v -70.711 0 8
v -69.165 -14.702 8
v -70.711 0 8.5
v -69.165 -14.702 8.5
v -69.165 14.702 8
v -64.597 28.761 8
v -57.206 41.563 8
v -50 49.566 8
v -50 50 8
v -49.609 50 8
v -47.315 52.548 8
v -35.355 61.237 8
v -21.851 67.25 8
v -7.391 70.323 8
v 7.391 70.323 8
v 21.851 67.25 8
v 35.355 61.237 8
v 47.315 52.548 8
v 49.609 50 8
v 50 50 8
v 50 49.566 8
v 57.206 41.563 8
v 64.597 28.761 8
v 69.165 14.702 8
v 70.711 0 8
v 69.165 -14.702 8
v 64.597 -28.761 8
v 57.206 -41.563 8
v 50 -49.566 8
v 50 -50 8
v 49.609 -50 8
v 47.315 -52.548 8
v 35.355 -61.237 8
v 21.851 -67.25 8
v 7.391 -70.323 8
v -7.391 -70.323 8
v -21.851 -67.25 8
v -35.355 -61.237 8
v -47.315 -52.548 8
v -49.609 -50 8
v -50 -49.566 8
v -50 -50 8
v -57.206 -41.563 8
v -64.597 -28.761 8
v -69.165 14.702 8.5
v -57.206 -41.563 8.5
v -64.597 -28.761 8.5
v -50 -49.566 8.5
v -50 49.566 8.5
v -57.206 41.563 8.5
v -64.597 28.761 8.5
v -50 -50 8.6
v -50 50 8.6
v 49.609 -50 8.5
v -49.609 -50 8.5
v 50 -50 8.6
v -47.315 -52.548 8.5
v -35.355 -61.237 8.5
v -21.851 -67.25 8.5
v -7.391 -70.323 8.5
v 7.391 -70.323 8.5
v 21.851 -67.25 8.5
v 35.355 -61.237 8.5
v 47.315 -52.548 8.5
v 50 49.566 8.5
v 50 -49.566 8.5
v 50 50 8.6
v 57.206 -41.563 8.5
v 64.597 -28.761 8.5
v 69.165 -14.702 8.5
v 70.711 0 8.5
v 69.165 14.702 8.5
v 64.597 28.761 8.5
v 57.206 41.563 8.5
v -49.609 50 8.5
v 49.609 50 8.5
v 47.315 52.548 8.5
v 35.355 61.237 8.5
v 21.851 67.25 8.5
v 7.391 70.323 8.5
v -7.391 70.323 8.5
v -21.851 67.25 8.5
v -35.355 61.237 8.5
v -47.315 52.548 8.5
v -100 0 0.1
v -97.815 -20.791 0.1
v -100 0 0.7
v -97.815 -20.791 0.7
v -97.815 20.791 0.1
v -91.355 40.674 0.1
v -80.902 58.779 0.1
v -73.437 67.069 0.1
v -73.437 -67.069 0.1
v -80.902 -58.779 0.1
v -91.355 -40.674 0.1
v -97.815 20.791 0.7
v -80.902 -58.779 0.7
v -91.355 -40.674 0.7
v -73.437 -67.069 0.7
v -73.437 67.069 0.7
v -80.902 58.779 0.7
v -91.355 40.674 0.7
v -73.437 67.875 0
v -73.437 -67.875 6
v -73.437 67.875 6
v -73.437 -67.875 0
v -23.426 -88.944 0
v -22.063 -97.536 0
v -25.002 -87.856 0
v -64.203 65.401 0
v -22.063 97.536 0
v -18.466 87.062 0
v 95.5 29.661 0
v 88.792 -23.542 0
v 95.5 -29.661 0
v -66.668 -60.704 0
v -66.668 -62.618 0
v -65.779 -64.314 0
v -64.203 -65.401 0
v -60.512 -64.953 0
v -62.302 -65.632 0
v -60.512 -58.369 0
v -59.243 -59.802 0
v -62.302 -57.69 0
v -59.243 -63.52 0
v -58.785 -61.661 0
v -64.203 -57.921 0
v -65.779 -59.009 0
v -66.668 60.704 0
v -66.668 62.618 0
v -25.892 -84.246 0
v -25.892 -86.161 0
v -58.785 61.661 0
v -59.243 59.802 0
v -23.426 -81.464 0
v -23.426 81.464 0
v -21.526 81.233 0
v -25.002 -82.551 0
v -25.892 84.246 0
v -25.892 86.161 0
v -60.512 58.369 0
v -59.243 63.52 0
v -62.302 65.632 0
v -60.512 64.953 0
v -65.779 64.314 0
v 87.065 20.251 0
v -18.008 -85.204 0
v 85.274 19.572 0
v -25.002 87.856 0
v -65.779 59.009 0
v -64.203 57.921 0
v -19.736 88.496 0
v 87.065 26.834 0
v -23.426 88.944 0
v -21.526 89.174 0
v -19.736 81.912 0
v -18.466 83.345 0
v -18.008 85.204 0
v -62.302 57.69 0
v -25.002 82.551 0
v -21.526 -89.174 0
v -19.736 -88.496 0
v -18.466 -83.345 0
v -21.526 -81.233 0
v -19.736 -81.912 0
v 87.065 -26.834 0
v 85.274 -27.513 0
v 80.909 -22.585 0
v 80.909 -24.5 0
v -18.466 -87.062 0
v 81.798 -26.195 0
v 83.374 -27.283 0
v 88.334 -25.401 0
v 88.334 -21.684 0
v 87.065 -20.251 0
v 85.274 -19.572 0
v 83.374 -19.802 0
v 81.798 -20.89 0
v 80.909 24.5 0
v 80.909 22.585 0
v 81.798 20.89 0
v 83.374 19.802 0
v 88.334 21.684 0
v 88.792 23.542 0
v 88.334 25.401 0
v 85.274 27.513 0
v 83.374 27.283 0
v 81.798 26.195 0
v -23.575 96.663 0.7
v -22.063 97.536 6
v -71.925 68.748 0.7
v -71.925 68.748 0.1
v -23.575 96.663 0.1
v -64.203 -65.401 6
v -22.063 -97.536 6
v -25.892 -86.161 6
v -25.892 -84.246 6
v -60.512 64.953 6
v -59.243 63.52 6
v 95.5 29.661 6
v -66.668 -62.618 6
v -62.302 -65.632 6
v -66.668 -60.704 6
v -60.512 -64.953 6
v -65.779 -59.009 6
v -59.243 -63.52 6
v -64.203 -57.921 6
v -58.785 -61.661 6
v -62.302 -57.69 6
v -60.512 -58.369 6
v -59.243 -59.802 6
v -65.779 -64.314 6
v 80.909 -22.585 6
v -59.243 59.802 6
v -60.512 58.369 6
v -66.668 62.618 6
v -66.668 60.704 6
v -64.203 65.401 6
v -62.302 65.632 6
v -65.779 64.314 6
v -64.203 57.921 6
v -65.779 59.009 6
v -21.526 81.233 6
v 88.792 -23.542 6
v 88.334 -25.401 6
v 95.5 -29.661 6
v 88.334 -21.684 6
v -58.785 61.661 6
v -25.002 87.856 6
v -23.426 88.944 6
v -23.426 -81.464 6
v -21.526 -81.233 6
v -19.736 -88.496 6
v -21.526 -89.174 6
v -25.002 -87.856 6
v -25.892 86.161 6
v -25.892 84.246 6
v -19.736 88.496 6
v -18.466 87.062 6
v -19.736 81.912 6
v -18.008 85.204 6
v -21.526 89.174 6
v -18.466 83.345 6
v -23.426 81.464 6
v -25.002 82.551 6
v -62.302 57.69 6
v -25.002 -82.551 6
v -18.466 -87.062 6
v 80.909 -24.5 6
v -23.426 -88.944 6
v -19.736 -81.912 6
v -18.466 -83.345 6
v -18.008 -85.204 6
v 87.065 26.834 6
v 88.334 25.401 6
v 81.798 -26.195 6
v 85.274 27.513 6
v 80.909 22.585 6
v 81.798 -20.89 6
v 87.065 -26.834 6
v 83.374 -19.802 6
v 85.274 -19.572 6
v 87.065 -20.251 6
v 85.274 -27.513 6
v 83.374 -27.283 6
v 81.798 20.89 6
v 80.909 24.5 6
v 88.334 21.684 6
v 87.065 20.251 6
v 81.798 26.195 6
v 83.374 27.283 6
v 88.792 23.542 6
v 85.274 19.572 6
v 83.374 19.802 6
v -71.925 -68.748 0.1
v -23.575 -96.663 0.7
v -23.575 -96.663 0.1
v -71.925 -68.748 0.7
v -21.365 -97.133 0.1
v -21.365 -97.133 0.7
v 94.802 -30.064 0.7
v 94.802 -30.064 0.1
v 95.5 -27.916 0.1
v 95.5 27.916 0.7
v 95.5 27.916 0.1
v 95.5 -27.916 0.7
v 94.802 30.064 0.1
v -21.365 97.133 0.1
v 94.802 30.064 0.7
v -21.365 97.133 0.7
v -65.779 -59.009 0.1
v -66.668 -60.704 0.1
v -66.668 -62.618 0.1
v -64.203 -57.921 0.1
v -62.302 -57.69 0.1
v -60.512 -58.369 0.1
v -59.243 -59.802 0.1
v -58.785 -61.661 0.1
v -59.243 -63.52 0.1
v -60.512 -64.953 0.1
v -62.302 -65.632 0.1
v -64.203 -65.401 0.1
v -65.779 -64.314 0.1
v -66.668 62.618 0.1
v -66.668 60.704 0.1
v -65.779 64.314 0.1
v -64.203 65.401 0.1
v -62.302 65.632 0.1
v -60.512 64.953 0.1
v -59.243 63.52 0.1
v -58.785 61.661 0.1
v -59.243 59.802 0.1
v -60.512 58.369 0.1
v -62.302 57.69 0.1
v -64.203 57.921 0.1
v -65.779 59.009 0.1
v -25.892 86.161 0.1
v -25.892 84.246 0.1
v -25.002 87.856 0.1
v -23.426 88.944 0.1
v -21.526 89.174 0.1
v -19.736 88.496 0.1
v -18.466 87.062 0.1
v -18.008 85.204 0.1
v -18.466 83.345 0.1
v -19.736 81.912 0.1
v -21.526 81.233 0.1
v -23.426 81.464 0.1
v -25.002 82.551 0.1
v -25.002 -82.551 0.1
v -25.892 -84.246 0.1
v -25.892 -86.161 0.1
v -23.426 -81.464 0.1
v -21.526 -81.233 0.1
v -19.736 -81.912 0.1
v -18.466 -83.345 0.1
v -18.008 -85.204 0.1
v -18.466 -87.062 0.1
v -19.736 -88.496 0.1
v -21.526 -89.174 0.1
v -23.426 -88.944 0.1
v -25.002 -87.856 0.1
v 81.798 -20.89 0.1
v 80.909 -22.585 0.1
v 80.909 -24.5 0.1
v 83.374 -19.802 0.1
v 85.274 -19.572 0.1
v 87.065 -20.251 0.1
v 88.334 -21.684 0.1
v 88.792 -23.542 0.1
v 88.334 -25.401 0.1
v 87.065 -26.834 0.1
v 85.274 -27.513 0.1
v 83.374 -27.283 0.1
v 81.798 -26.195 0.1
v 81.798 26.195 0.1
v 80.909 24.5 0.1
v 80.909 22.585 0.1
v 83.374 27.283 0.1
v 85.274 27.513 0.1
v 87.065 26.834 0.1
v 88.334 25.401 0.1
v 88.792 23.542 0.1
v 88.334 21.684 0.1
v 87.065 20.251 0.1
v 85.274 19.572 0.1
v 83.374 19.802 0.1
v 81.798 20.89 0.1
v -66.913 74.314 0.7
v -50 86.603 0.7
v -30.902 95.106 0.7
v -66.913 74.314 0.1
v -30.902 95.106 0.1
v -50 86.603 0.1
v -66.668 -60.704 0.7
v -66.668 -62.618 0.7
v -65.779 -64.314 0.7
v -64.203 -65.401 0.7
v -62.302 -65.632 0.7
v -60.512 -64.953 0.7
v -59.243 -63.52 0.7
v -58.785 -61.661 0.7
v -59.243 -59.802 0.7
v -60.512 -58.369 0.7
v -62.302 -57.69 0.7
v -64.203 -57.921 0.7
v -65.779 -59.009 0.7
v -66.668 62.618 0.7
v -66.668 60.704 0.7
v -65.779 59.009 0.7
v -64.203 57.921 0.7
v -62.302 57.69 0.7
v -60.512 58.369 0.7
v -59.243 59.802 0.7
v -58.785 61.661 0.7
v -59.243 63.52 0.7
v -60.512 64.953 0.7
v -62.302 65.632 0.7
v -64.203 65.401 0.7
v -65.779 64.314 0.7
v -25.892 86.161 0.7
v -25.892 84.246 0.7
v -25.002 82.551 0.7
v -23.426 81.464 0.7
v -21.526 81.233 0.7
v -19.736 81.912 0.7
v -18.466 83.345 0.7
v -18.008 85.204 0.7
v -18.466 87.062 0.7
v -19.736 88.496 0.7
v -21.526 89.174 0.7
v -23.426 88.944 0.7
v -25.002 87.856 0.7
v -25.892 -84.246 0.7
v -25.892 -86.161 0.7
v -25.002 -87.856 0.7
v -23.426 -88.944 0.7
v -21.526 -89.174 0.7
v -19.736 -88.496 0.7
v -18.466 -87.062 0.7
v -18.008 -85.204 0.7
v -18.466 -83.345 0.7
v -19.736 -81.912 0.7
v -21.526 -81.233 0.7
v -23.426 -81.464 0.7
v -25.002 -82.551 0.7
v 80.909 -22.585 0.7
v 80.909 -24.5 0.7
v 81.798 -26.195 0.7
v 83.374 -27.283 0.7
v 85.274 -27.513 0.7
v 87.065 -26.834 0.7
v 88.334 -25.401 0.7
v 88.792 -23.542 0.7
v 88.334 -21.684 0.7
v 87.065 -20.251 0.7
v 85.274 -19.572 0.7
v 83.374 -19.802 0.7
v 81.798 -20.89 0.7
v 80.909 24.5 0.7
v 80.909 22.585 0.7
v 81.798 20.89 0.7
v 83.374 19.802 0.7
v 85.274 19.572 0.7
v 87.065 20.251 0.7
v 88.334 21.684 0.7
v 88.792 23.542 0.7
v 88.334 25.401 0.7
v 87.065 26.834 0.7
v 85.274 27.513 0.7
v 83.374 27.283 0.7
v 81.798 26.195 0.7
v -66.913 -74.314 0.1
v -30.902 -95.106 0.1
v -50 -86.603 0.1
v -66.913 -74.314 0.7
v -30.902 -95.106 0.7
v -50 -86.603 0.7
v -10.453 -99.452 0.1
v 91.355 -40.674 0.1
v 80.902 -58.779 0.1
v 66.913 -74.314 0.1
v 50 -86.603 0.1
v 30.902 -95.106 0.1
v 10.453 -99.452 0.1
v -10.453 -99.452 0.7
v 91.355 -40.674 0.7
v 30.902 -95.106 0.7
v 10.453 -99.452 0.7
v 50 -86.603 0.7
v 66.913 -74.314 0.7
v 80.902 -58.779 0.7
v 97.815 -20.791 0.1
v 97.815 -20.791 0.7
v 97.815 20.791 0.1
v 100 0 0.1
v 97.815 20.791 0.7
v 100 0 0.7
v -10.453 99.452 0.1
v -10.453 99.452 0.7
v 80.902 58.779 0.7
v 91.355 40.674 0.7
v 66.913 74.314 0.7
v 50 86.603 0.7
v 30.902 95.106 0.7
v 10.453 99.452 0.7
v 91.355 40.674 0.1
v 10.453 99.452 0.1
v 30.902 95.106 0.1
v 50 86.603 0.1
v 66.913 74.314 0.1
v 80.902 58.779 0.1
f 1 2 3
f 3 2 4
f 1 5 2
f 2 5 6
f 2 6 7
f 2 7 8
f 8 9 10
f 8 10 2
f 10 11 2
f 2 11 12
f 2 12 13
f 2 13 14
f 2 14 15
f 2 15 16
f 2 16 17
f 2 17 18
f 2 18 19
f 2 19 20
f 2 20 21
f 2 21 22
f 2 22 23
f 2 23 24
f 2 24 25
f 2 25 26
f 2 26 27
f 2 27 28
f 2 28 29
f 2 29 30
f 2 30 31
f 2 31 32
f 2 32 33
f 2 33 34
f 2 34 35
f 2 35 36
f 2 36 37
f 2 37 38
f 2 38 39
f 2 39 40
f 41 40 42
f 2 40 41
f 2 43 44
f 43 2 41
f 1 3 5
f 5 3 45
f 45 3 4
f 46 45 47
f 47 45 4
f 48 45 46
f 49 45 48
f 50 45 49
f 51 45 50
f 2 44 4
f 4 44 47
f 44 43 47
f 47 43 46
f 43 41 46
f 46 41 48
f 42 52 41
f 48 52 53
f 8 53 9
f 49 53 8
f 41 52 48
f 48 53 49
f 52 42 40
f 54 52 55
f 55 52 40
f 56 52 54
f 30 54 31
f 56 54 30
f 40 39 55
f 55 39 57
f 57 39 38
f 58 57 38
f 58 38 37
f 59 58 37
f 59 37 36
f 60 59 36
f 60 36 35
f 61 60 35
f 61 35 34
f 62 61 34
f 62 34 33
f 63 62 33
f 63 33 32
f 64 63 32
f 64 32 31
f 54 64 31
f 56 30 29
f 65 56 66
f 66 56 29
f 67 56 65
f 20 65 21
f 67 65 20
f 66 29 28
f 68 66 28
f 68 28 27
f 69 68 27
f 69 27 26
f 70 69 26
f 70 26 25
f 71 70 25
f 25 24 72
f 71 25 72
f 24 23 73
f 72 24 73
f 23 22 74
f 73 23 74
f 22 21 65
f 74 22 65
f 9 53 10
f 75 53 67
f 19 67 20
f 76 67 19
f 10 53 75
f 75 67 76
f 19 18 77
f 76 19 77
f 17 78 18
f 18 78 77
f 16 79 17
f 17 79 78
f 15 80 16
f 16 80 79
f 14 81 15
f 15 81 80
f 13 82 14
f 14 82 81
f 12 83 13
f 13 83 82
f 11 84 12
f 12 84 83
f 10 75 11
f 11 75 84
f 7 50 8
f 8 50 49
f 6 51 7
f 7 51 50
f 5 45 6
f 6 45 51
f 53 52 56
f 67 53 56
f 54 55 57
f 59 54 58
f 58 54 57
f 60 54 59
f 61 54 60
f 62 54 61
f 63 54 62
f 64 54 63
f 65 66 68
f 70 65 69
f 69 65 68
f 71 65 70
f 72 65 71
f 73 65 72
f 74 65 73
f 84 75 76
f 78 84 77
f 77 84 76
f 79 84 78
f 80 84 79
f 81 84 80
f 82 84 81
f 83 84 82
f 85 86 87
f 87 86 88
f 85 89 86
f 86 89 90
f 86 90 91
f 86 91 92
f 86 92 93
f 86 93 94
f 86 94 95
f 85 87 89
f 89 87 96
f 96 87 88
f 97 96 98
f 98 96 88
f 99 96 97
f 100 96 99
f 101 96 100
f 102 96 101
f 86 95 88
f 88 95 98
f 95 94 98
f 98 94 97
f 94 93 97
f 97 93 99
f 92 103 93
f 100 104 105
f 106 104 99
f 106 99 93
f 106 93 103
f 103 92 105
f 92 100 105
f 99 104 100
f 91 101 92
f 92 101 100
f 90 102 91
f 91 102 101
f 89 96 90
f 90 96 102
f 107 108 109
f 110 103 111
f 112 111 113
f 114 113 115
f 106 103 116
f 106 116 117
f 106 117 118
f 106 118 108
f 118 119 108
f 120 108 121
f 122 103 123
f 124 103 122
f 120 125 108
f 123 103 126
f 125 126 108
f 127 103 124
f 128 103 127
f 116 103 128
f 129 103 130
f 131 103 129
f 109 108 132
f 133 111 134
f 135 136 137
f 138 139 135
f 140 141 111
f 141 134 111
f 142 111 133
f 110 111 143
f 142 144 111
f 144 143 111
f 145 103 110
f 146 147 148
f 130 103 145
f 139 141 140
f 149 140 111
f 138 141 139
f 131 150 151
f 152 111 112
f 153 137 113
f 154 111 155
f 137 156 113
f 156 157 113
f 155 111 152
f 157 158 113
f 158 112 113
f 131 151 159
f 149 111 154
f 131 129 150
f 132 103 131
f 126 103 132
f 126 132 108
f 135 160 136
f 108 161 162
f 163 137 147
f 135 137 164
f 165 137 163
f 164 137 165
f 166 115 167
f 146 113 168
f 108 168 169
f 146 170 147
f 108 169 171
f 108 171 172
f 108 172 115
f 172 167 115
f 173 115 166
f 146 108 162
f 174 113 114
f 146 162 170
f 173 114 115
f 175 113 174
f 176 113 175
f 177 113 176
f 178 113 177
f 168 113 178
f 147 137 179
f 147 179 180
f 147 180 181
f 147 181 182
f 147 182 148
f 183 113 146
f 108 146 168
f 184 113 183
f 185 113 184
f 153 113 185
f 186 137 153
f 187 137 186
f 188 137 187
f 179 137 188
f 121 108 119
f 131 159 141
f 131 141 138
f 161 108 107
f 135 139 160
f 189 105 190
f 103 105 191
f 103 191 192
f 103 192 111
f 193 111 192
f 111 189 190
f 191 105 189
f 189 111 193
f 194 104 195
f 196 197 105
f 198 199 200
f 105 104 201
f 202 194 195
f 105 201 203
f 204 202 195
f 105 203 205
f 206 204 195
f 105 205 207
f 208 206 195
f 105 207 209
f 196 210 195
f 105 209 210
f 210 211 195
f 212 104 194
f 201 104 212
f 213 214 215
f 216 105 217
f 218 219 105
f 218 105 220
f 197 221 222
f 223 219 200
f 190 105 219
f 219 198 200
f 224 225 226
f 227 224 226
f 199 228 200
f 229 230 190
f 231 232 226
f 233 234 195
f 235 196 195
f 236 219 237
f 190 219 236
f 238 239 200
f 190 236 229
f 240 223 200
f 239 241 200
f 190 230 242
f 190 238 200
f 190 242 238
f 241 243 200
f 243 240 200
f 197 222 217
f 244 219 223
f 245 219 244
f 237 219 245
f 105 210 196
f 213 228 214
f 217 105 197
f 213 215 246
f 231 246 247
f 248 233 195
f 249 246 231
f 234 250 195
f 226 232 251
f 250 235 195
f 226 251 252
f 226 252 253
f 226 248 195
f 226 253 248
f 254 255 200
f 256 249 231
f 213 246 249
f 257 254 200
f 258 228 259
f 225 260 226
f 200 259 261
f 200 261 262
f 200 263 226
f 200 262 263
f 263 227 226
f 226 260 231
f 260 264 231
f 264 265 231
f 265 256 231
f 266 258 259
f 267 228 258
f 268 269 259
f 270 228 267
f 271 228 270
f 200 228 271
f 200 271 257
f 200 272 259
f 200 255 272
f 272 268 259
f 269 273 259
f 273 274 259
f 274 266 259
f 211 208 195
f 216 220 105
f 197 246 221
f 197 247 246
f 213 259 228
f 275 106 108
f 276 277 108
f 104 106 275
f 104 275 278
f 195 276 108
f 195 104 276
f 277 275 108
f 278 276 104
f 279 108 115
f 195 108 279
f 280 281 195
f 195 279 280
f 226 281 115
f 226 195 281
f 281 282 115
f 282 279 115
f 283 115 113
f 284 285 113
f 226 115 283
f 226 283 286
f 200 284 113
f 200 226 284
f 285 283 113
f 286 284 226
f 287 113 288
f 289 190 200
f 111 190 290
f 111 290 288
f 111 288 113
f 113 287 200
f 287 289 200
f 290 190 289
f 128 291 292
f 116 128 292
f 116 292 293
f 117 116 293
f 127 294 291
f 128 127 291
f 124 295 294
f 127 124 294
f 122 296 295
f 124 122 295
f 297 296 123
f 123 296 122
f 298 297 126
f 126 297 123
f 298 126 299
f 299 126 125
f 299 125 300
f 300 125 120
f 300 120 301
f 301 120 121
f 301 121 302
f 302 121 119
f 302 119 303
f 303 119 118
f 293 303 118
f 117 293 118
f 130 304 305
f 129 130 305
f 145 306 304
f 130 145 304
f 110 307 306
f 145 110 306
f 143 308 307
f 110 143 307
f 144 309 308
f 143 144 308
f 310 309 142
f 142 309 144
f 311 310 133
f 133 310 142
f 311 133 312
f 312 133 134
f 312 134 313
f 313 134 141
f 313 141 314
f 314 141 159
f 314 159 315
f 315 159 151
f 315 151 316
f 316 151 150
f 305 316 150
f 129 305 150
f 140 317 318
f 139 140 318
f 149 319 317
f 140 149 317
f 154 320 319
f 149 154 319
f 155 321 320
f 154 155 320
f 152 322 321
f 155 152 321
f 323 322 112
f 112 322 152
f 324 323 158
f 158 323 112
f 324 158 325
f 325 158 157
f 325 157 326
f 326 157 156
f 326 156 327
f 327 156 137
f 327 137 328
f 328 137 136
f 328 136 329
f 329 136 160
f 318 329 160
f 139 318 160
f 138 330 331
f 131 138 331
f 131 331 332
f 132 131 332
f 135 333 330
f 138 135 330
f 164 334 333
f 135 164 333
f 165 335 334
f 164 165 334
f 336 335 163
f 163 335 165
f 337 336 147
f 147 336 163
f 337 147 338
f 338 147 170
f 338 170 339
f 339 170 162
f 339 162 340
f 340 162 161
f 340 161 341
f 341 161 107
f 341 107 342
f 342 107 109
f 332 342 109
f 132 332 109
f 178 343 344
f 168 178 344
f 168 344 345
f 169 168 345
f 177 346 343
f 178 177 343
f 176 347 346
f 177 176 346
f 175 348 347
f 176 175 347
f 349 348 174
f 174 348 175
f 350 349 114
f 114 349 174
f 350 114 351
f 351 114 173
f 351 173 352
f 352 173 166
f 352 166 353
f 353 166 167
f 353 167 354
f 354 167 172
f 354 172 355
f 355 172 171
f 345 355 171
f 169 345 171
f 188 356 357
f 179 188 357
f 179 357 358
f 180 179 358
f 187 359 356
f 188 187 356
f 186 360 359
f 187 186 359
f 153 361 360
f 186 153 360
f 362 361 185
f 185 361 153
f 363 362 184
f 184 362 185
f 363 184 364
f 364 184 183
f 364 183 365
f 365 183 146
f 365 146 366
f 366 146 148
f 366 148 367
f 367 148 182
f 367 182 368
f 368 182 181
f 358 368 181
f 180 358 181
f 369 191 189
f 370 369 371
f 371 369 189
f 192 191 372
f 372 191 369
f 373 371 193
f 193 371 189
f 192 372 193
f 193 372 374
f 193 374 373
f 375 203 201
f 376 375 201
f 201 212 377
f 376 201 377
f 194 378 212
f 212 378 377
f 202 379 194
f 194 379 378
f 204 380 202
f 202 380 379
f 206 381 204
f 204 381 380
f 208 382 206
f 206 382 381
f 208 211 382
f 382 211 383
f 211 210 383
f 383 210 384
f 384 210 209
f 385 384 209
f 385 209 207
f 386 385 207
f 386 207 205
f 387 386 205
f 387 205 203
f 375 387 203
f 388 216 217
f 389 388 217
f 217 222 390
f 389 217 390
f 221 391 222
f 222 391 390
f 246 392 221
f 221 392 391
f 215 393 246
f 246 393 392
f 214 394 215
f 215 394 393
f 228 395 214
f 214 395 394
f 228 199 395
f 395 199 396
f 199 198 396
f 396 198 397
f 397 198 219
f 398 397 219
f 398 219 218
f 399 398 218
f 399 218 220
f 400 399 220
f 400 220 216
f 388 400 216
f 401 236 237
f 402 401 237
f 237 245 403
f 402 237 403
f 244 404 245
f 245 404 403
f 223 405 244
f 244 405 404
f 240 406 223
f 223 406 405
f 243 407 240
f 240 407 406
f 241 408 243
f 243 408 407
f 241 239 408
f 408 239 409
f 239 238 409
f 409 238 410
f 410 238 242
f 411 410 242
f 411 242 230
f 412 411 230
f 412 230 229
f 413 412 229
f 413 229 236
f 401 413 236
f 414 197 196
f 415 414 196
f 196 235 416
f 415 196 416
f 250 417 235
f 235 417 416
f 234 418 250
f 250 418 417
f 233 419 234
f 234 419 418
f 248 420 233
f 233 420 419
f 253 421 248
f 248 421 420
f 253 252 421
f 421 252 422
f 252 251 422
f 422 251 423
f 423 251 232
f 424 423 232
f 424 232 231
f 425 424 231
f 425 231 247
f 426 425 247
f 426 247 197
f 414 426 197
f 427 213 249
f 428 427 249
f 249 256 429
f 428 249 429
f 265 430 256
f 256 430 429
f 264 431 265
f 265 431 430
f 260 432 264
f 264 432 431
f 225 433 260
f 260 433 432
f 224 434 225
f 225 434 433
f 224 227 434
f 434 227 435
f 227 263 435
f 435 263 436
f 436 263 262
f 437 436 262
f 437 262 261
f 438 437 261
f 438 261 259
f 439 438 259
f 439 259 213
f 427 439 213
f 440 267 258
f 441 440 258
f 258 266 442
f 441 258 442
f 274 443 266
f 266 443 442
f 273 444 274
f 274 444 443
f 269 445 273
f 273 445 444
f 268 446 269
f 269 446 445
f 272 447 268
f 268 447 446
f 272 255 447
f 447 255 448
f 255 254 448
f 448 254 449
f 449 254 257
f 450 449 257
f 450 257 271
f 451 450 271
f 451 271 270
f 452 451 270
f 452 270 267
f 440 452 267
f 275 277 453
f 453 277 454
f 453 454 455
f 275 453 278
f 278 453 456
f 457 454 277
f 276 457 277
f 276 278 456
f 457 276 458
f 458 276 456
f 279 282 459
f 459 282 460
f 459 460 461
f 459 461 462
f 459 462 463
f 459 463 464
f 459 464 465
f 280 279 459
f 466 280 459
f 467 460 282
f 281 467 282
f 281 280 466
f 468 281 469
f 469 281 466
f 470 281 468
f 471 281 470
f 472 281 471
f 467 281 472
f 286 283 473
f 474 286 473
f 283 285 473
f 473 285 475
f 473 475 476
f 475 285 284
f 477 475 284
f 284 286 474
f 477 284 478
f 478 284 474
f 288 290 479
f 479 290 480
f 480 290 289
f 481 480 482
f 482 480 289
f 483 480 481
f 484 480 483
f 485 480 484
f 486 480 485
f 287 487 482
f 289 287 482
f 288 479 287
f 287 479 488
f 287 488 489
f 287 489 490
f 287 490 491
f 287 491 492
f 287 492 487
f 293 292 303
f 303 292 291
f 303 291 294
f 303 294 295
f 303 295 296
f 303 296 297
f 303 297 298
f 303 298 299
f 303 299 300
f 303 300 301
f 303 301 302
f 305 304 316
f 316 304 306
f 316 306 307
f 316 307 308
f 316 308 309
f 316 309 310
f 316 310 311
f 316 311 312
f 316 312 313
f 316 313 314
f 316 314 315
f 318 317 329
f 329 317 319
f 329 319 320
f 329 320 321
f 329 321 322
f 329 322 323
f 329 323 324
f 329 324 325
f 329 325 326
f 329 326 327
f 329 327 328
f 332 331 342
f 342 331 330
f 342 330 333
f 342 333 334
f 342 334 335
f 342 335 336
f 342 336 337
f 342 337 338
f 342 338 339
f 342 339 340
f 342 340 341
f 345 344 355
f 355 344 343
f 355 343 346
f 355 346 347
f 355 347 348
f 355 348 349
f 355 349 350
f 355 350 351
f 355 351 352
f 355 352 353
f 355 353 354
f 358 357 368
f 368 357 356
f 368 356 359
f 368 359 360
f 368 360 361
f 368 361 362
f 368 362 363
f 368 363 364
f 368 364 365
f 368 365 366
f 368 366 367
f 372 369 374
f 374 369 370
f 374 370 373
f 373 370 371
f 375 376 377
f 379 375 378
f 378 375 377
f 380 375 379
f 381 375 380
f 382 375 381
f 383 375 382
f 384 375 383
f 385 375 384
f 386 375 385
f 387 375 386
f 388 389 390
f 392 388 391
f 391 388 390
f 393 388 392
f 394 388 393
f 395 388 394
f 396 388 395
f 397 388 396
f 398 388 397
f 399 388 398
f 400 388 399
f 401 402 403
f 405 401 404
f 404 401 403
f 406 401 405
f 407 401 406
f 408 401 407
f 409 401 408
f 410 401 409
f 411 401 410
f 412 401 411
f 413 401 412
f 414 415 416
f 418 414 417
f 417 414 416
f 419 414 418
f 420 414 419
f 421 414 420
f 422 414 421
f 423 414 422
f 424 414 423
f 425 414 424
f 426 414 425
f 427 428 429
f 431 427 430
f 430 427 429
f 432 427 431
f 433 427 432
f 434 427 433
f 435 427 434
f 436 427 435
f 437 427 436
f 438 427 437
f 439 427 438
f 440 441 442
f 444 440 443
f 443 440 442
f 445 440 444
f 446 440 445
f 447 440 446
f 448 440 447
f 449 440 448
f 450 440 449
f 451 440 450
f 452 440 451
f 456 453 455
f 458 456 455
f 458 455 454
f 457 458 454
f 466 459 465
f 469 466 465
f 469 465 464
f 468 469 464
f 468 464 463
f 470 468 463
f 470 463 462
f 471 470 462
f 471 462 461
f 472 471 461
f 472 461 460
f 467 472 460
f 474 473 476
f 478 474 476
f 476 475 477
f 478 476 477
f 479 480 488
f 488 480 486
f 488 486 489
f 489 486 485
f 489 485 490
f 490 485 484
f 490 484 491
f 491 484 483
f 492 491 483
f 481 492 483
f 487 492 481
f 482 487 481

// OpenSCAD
// file: local.scad
/*
Copyright (c) 2013 Johannes Reinhardt <jreinhardt@ist-dein-freund.de>

Permission is hereby granted, free of charge, to any person obtaining a copy
of this software and associated documentation files (the "Software"), to deal
in the Software without restriction, including without limitation the rights
to use, copy, modify, merge, publish, distribute, sublicense, and/or sell
copies of the Software, and to permit persons to whom the Software is
furnished to do so, subject to the following conditions:

The above copyright notice and this permission notice shall be included in
all copies or substantial portions of the Software.

THE SOFTWARE IS PROVIDED "AS IS", WITHOUT WARRANTY OF ANY KIND, EXPRESS OR
IMPLIED, INCLUDING BUT NOT LIMITED TO THE WARRANTIES OF MERCHANTABILITY,
FITNESS FOR A PARTICULAR PURPOSE AND NONINFRINGEMENT. IN NO EVENT SHALL THE
AUTHORS OR COPYRIGHT HOLDERS BE LIABLE FOR ANY CLAIM, DAMAGES OR OTHER
LIABILITY, WHETHER IN AN ACTION OF CONTRACT, TORT OR OTHERWISE, ARISING FROM,
OUT OF OR IN CONNECTION WITH THE SOFTWARE OR THE USE OR OTHER DEALINGS IN
THE SOFTWARE.
*/

/*
local.scad local coordinate systems for OpenSCAD

for more information, see https://github.com/jreinhardt/local-scad
*/

//a few utility functions
function norm(a) = sqrt(a*a);
function unit_vector(v) = v/norm(v);
function clamp(v,lower_bound,upper_bound) = min(max(v,lower_bound),upper_bound);
function cross_product(a,b) = [
	a[1]*b[2]-a[2]*b[1],
	a[2]*b[0]-a[0]*b[2],
	a[0]*b[1]-a[1]*b[0]
];

//works for both numbers and vectors
function almost_equal(number, ref, tol) = sqrt((number-ref)*(number-ref)) < tol;

function _rotation_angle(a,b) = (a*b > 0) ? 
	asin(clamp(norm(cross_product(b,a))/norm(a)/norm(b),-1,1)) :
	180 - asin(clamp(norm(cross_product(b,a))/norm(a)/norm(b),-1,1));

//The (non-unit) rotation axis and angle around which a has to be rotated to be colinear to b
function calculate_rotation_axis(a,b) =
	//if the two vectors are not colinear find a rotation axis using the cross product
	(norm(cross_product(b,a)) != 0) ? [unit_vector(cross_product(b,a)),_rotation_angle(a,b)] :
	//if they are colinear and do not lie in the yz plane, choose the rotation axis from the yz plane
	(a*[1,0,0] < 0) ? [unit_vector([0,-a[1],+a[0]]),acos(clamp(a*b/norm(a)/norm(b),-1,1))] :
	(a*[1,0,0] > 0) ? [unit_vector([0,+a[1],-a[0]]),acos(clamp(a*b/norm(a)/norm(b),-1,1))] :
	//otherwise use the x axis
	[[1,0,0],acos(clamp(a*b/norm(a)/norm(b),-1,1))];

function calculate_axes(x,y) = [unit_vector(x),unit_vector(y), unit_vector(cross_product(x,y))];

function new_cs(origin=[0,0,0],axes=[[1,0,0],[0,1,0],[0,0,1]]) = (len(axes) == 2) ?
	[origin,calculate_axes(axes[0],axes[1])] :
	is_orthonormal([origin,axes]) ?
		[origin,axes] :
		"Error: Axes are not orthonormal";

function is_orthonormal(cs,tol=1e-3) =
	(almost_equal(norm(cs[1][0]),1,tol)) &&
	(almost_equal(norm(cs[1][1]),1,tol)) &&
	(almost_equal(norm(cs[1][2]),1,tol)) &&
	(almost_equal(cross_product(cs[1][0],cs[1][1]),cs[1][2],tol)) &&
	(almost_equal(cross_product(cs[1][1],cs[1][2]),cs[1][0],tol)) &&
	(almost_equal(cross_product(cs[1][2],cs[1][0]),cs[1][1],tol));

function unit_matrix3() = [
[1,0,0],
[0,1,0],
[0,0,1]];

function tensor_product_matrix3(u,v) = [
[u[0]*v[0], u[0]*v[1], u[0]*v[2]],
[u[1]*v[0], u[1]*v[1], u[1]*v[2]],
[u[2]*v[0], u[2]*v[1], u[2]*v[2]]];

function cross_product_matrix3(v) = [
[   0 , -v[2], +v[1]],
[+v[2],    0 , -v[0]],
[-v[1],  v[0],    0 ]];

function rotation_matrix3(n,angle) =
	cos(angle)*unit_matrix3() +
	sin(angle)*cross_product_matrix3(n) +
	(1-cos(angle))*tensor_product_matrix3(n,n);

//the modules are used directly by the user
module show_cs(cs){
	origin = cs[0];
	axes = cs[1];
	x_rot = calculate_rotation_axis(axes[0],[0,0,1]);
	y_rot = calculate_rotation_axis(axes[1],[0,0,1]);
	z_rot = calculate_rotation_axis(axes[2],[0,0,1]);
	translate(origin){
		color("Gray") sphere(0.2);
		rotate(x_rot[1],x_rot[0]) color("Red") cylinder(r=0.1,h=norm(axes[0]));
		rotate(y_rot[1],y_rot[0]) color("Green") cylinder(r=0.1,h=norm(axes[1]));
		rotate(z_rot[1],z_rot[0]) color("Blue") cylinder(r=0.1,h=norm(axes[2]));
	}
}

module translate_local(cs,v=[0,0,0]){
	origin = cs[0];
	axes = cs[1];
	x_rot = calculate_rotation_axis(axes[0],[1,0,0]);
	y_rot = calculate_rotation_axis(axes[1],
		rotation_matrix3(x_rot[0],x_rot[1])*[0,1,0]);
	translate(origin+v*axes){
		//align y axes
		rotate(y_rot[1],y_rot[0]){
			//align x axes
			rotate(x_rot[1],x_rot[0]){
				child(0);
			}
		}
	}
}

module in_cs(cs){
	origin = cs[0];
	axes = cs[1];
	x_rot = calculate_rotation_axis(axes[0],[1,0,0]);
	y_rot = calculate_rotation_axis(axes[1],
		rotation_matrix3(x_rot[0],x_rot[1])*[0,1,0]);
	translate(origin){
		//align y axes
		rotate(y_rot[1],y_rot[0]){
			//align x axes
			rotate(x_rot[1],x_rot[0]){
				child(0);
			}
		}
	}
}

module align(cs, cs_dst, displacement){
	x_rot = calculate_rotation_axis(cs[1][0],cs_dst[1][0]);
	y_rot = _rotation_angle(cs[1][1],
		rotation_matrix3(x_rot[0],x_rot[1])*cs_dst[1][1]);
	echo(y_rot);
	translate(cs_dst[0])
		//align x axes
		rotate(-x_rot[1],x_rot[0])
				//align y axes
				rotate(-y_rot,cs[1][0])
				translate(-cs[0]+displacement)
					child(0);
}
// file: colours.scad
al = [0.67578125, 0.6953125, 0.73828125];
steel = [0.2734375, 0.5078125, 0.703125];
// main file
include <colours.scad>
use <local.scad>

r = 200/2;	// radius
segment_length = 30;
tower_distance = segment_length-3;

t = 2 * asin((segment_length/2)/r);
t0 = 2 * asin((tower_distance/2)/r);

module base() {

	a0 = [r * cos(0-t), r * sin(0-t)];
	a1 = [r * cos(0+t), r * sin(0+t)];
	b0 = [r * cos(120-t), r * sin(120-t)];
	b1 = [r * cos(120+t), r * sin(120+t)];
	c0 = [r * cos(240-t), r * sin(240-t)];
	c1 = [r * cos(240+t), r * sin(240+t)];

	color(steel) difference() {
		linear_extrude(height=6) polygon([a0,a1,b0,b1,c0,c1]);
		for ( i = [0 : 120 : 240] ) {
			translate([(r-12) * cos(i-t0), (r-12) * sin(i-t0), -0.5]) cylinder(r=4,h=7);
			translate([(r-12) * cos(i+t0), (r-12) * sin(i+t0), -0.5]) cylinder(r=4,h=7);
		}
	}
}

function base_conn(conn) = 
	(conn == "center")    ? new_cs(origin=[0,0,6], axes=[[0,0,1],[1,0,0]]) :
	(conn == 0) ? new_cs(origin=[(r-12) * cos(0-t0), (r-12) * sin(0-t0),0], axes=[[0,0,1],[1,0,0]]) :
	(conn == 1) ? new_cs(origin=[(r-12) * cos(0+t0), (r-12) * sin(0+t0),0], axes=[[0,0,1],[1,0,0]]) :
	(conn == 2) ? new_cs(origin=[(r-12) * cos(120-t0), (r-12) * sin(120-t0),0], axes=[[0,0,1],[1,0,0]]) :
	(conn == 3) ? new_cs(origin=[(r-12) * cos(120+t0), (r-12) * sin(120+t0),0], axes=[[0,0,1],[1,0,0]]) :
	(conn == 4) ? new_cs(origin=[(r-12) * cos(240-t0), (r-12) * sin(240-t0),0], axes=[[0,0,1],[1,0,0]]) :
	(conn == 5) ? new_cs(origin=[(r-12) * cos(240+t0), (r-12) * sin(240+t0),0], axes=[[0,0,1],[1,0,0]]) :
	"Error unknown connection";


/* edge length of printable square area
 * The actual printable area is the circle
 * that bounds this square. */
print_size=100;
color([0, 0, 1]) translate([0, 0, 8]) linear_extrude(height=0.6) square(print_size, center=true);

// Radius of the printable area
print_radius = sqrt(pow(print_size,2)+pow(print_size,2))/2;
color([1, 0, 0]) translate([0, 0, 8]) linear_extrude(height=0.5) circle(print_radius);
color([0, 1, 0]) translate([0, 0, 0.1]) linear_extrude(height=0.6) circle(r);

base();
